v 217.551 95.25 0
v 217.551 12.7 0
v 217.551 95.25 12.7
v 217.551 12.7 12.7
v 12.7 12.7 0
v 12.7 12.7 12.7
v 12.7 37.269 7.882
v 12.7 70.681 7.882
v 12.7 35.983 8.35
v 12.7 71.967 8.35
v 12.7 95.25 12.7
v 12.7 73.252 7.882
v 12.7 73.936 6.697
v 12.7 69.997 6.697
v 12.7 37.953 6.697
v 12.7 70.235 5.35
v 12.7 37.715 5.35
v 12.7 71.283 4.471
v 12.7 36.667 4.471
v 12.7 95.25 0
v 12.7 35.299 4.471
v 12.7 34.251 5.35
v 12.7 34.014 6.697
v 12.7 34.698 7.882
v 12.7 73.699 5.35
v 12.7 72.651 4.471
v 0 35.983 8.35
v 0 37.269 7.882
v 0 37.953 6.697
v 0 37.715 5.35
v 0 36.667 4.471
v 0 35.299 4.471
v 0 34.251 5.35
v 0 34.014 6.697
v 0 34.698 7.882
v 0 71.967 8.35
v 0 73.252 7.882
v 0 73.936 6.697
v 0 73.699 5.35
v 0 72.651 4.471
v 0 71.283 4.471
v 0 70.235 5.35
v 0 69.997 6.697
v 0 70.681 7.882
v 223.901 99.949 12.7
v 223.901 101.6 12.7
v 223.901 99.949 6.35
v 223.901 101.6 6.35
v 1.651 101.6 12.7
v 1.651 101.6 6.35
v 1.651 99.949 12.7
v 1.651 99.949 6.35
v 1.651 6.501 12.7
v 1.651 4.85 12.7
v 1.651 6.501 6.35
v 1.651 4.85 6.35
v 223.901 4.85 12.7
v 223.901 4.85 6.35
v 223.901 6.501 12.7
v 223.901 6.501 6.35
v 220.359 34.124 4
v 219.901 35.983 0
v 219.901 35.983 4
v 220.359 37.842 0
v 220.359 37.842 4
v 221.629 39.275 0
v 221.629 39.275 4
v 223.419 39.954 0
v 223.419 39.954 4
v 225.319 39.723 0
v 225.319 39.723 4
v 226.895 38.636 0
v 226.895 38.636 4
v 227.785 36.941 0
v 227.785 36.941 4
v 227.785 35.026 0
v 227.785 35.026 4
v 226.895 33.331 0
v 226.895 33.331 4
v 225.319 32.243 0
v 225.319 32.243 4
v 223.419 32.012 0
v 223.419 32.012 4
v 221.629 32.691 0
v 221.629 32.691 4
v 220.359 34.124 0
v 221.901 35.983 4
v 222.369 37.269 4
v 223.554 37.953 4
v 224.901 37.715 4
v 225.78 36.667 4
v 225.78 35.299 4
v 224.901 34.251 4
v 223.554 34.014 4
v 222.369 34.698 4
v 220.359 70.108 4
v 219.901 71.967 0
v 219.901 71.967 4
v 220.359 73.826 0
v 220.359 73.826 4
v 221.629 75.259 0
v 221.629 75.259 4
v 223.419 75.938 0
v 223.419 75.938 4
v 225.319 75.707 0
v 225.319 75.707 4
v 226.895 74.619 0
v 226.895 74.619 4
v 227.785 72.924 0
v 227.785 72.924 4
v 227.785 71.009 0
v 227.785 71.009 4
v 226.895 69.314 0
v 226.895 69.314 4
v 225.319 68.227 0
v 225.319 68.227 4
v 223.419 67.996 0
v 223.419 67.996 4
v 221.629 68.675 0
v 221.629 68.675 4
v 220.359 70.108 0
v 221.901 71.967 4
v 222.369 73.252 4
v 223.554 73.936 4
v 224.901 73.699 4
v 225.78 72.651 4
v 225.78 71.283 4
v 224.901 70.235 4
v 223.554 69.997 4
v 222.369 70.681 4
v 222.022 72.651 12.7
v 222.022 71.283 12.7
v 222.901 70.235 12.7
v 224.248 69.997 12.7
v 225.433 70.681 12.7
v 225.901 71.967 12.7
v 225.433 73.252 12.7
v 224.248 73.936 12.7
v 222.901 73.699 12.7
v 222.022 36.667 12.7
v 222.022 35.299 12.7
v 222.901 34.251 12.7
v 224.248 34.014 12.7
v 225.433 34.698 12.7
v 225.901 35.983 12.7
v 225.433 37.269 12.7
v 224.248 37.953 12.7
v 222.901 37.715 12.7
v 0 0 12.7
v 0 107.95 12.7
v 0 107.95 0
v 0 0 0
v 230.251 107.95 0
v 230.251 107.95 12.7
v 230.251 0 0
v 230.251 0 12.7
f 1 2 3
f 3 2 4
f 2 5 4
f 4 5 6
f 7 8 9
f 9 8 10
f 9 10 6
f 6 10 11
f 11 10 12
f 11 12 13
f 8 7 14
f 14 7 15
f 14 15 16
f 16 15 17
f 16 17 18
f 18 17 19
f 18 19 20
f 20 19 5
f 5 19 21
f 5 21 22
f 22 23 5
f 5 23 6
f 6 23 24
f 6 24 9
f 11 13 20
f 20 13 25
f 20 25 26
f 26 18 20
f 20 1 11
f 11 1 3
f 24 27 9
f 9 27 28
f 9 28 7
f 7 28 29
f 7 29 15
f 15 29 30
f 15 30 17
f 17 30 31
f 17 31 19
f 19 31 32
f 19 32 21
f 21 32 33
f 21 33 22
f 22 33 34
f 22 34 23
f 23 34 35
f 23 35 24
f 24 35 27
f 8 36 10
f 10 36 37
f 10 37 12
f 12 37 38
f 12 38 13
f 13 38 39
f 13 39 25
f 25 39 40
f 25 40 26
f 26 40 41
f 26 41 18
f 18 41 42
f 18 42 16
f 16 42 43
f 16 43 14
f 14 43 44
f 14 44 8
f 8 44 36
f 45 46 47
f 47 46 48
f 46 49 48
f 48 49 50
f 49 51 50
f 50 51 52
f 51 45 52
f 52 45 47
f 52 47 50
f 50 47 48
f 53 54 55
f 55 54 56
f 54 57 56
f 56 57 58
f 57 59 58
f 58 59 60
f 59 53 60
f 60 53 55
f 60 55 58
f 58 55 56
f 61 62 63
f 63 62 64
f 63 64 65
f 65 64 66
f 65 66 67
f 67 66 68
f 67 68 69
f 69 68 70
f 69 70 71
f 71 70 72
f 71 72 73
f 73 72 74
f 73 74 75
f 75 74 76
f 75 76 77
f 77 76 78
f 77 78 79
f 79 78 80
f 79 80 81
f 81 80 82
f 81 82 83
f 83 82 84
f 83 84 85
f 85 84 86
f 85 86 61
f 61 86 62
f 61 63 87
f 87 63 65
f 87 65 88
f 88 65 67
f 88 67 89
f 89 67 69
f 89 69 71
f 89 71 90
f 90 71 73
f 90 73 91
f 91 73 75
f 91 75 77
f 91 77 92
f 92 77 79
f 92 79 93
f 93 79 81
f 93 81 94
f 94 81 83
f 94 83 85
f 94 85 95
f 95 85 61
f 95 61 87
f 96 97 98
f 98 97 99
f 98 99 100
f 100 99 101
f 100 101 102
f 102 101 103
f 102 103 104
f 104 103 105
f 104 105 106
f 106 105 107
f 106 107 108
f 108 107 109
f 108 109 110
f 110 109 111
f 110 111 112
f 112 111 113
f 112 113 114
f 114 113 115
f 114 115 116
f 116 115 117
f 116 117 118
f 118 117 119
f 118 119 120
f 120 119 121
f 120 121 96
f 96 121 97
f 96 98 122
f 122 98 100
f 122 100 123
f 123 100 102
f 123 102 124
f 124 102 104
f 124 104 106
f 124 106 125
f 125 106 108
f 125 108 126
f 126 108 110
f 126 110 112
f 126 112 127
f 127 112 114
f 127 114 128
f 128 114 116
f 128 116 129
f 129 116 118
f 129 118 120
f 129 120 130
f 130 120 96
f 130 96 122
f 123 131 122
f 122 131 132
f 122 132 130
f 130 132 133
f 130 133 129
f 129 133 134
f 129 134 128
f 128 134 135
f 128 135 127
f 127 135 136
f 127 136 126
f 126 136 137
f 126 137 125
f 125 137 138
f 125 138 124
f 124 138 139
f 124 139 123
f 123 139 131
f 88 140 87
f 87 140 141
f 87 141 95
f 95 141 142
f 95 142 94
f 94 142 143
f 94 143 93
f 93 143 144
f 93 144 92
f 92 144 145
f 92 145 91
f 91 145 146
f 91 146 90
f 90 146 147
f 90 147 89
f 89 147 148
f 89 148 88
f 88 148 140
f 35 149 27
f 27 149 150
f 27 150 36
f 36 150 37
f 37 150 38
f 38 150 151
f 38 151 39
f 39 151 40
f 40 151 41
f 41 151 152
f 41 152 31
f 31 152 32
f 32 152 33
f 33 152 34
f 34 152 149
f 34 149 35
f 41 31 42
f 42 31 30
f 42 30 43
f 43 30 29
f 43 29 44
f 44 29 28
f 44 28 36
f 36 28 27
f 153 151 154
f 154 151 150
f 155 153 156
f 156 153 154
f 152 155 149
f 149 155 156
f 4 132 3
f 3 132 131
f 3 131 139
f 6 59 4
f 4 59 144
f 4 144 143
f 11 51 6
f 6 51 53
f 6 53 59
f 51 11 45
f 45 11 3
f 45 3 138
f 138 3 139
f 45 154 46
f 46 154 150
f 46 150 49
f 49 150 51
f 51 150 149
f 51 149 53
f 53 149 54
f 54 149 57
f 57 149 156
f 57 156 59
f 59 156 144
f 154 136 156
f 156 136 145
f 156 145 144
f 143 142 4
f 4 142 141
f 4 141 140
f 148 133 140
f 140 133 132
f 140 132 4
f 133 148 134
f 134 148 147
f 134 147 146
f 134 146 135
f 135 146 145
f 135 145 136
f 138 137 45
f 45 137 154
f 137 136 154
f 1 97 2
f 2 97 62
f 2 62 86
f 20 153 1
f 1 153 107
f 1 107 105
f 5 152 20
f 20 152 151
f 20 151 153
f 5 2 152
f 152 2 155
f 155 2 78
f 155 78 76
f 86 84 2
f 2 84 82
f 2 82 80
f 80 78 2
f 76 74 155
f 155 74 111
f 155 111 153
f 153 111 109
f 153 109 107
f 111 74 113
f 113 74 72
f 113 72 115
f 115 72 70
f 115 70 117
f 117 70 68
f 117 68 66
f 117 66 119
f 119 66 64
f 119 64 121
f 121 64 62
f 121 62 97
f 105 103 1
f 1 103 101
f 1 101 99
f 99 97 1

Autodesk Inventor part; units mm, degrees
ref_plane "YZ Plane" through (0, 0, 0) normal (1, 0, 0) x (0, 1, 0)
ref_plane "XZ Plane" through (0, 0, 0) normal (0, 1, 0) x (-1, 0, 0)
ref_plane "XY Plane" through (0, 0, 0) normal (0, 0, 1) x (1, 0, 0)
sketch "Sketch1" plane through (0, 0, 0) normal (0, 0, 1) x (1, 0, 0)
  line L0 (0, 0) -> (230.251, 0)
  line L1 (230.251, 0) -> (230.251, 107.95)
  line L2 (230.251, 107.95) -> (0, 107.95)
  line L3 (0, 107.95) -> (0, 0)
  line L4 (230.251, 107.95) -> (223.901, 107.95) construction
  line L5 (223.901, 107.95) -> (223.901, 101.6) construction
  line L6 (223.901, 101.6) -> (230.251, 101.6) construction
  line L7 (230.251, 101.6) -> (230.251, 107.95) construction
  line L8 (223.901, 101.6) -> (0, 101.6)
  line L9 (0, 101.6) -> (0, 100.076)
  line L10 (0, 100.076) -> (223.901, 100.076)
  line L11 (223.901, 100.076) -> (223.901, 101.6)
  line L12 (230.251, 0) -> (223.901, 0) construction
  line L13 (223.901, 0) -> (223.901, 35.9833) construction
  line L14 (223.901, 35.9833) -> (230.251, 35.9833) construction
  line L15 (230.251, 35.9833) -> (230.251, 0) construction
  circle A0 centre (223.901, 35.9833) radius 2
  circle A1 centre (223.901, 71.9667) radius 2
  line L16 (230.251, 53.975) -> (0, 53.975) construction
  line L17 (223.901, 6.35) -> (0, 6.35)
  line L18 (0, 7.874) -> (223.901, 7.874)
  line L19 (223.901, 7.874) -> (223.901, 6.35)
  dimension "length" = 230.251
  dimension "height" = 107.95
  dimension "d3" = 6.35
  dimension "d4" = 6.35
  dimension "d5" = 223.901
  dimension "d6" = 1.524
  dimension "spacing" = 35.9833
  dimension "d9" = 6.35
  dimension "TopScrewDiameter" = 4
  dimension "d13" = 35.9833
extrude "Generic Shape" add sketch "Sketch1" along normal blind 12.7
sketch "ScrewCapDiameter" plane through (0, 0, 0) normal (0, 0, -1) x (-1, 0, 0)
  circle A0 centre (-223.901, 71.9667) radius 2 projected
  circle A1 centre (-223.901, 71.9667) radius 4
  circle A2 centre (-223.901, 35.9833) radius 2 projected
  circle A3 centre (-223.901, 35.9833) radius 4
  point P0 (0, 0)
  dimension "d106" = 8
  dimension "d107" = 8
extrude "ScrewCapCountersink" cut sketch "ScrewCapDiameter" against normal blind 4
sketch "PcbNotchDimensions" plane through (0, 0, 12.7) normal (0, 0, 1) x (1, 0, 0)
  line L0 (230.251, 107.95) -> (0, 107.95) construction
  line L1 (230.251, 107.95) -> (223.901, 107.95) construction
  line L2 (223.901, 107.95) -> (223.901, 101.6) construction
  line L3 (223.901, 101.6) -> (230.251, 101.6) construction
  line L4 (230.251, 101.6) -> (230.251, 107.95) construction
  line L5 (223.901, 101.6) -> (1.651, 101.6)
  line L6 (1.651, 101.6) -> (1.651, 99.949)
  line L7 (1.651, 99.949) -> (223.901, 99.949)
  line L8 (223.901, 99.949) -> (223.901, 101.6)
  line L9 (230.251, 0) -> (230.251, 107.95) construction
  line L10 (230.251, 53.225) -> (0, 53.225) construction
  line L11 (0, 107.95) -> (0, 0) construction
  line L12 (223.901, 4.85) -> (1.651, 4.85)
  line L13 (1.651, 4.85) -> (1.651, 6.501)
  line L14 (1.651, 6.501) -> (223.901, 6.501)
  line L15 (223.901, 6.501) -> (223.901, 4.85)
  point P0 (230.251, 106.45)
  point P1 (0, 106.45)
  dimension "d21" = 6.35
  dimension "d22" = 6.35
  dimension "d23" = 222.25
  dimension "PcbThickness" = 1.651
extrude "PCB Notch" cut sketch "PcbNotchDimensions" against normal blind 6.35
sketch "UntappedScrewHoleDimensions" plane through (0, 0, 0) normal (-1, 0, 0) x (0, 0, 1)
  line L0 (0, 0) -> (6.35, 0) construction
  line L1 (6.35, 0) -> (6.35, 35.9833) construction
  line L2 (6.35, 35.9833) -> (0, 35.9833) construction
  line L3 (0, 35.9833) -> (0, 0) construction
  circle A0 centre (6.35, 35.9833) radius 2
  line L4 (0, 107.95) -> (6.35, 107.95) construction
  line L5 (6.35, 107.95) -> (6.35, 71.9667) construction
  line L6 (6.35, 71.9667) -> (0, 71.9667) construction
  line L7 (0, 71.9667) -> (0, 107.95) construction
  circle A1 centre (6.35, 71.9667) radius 2
  dimension "d33" = 6.35
  dimension "d34" = 35.9833
  dimension "ScrewDiameterUntapped" = 4
  dimension "d36" = 6.35
  dimension "d37" = 35.9833
  dimension "d38" = 4
extrude "UntappedScrewDepth" cut sketch "UntappedScrewHoleDimensions" against normal blind 12.7
thread "Thread10" size "M4x0.7" class "6H" standard "ANSI Metric M Profile" length 230.251
thread "Thread11" size "M4x0.7" class "6H" standard "ANSI Metric M Profile" length 230.251
sketch "Sketch18" plane through (0, 0, 0) normal (0, 0, -1) x (-1, 0, 0)
  line L0 (0, 0) -> (-12.7, 0) construction
  line L1 (-12.7, 0) -> (-12.7, 12.7) construction
  line L2 (-12.7, 12.7) -> (0, 12.7) construction
  line L3 (0, 12.7) -> (0, 0) construction
  line L4 (-12.7, 12.7) -> (-217.551, 12.7)
  line L5 (-217.551, 12.7) -> (-217.551, 95.25)
  line L6 (-217.551, 95.25) -> (-12.7, 95.25)
  line L7 (-12.7, 95.25) -> (-12.7, 12.7)
  dimension "bezel" = 12.7
  dimension "d156" = 12.7
  dimension "d157" = 204.851
  dimension "d158" = 82.55
extrude "Extrusion16" cut sketch "Sketch18" against normal blind 12.7
equation "\"d3\" = 0.5 * thickness"
equation "\"d4\" = 0.5 * thickness"
equation "\"d5\" = length - 0.5 * thickness"
equation "\"spacing\" = 0.333333 * height"
equation "\"d9\" = 0.5 * thickness"
equation "\"d13\" = spacing"
equation "\"d25\" = 0.5 * thickness"
equation "\"d33\" = 0.5 * thickness"
equation "\"d34\" = 0.333333 * height"
equation "\"d36\" = 0.5 * thickness"
equation "\"d37\" = 0.333333 * height"
equation "\"d38\" = ScrewDiameterUntapped"
equation "\"LcdThickness\" = 9.9"
equation "\"thickness\" = 12.7"
properties part number "2020-03-29 CubeBaseSkeleton"
